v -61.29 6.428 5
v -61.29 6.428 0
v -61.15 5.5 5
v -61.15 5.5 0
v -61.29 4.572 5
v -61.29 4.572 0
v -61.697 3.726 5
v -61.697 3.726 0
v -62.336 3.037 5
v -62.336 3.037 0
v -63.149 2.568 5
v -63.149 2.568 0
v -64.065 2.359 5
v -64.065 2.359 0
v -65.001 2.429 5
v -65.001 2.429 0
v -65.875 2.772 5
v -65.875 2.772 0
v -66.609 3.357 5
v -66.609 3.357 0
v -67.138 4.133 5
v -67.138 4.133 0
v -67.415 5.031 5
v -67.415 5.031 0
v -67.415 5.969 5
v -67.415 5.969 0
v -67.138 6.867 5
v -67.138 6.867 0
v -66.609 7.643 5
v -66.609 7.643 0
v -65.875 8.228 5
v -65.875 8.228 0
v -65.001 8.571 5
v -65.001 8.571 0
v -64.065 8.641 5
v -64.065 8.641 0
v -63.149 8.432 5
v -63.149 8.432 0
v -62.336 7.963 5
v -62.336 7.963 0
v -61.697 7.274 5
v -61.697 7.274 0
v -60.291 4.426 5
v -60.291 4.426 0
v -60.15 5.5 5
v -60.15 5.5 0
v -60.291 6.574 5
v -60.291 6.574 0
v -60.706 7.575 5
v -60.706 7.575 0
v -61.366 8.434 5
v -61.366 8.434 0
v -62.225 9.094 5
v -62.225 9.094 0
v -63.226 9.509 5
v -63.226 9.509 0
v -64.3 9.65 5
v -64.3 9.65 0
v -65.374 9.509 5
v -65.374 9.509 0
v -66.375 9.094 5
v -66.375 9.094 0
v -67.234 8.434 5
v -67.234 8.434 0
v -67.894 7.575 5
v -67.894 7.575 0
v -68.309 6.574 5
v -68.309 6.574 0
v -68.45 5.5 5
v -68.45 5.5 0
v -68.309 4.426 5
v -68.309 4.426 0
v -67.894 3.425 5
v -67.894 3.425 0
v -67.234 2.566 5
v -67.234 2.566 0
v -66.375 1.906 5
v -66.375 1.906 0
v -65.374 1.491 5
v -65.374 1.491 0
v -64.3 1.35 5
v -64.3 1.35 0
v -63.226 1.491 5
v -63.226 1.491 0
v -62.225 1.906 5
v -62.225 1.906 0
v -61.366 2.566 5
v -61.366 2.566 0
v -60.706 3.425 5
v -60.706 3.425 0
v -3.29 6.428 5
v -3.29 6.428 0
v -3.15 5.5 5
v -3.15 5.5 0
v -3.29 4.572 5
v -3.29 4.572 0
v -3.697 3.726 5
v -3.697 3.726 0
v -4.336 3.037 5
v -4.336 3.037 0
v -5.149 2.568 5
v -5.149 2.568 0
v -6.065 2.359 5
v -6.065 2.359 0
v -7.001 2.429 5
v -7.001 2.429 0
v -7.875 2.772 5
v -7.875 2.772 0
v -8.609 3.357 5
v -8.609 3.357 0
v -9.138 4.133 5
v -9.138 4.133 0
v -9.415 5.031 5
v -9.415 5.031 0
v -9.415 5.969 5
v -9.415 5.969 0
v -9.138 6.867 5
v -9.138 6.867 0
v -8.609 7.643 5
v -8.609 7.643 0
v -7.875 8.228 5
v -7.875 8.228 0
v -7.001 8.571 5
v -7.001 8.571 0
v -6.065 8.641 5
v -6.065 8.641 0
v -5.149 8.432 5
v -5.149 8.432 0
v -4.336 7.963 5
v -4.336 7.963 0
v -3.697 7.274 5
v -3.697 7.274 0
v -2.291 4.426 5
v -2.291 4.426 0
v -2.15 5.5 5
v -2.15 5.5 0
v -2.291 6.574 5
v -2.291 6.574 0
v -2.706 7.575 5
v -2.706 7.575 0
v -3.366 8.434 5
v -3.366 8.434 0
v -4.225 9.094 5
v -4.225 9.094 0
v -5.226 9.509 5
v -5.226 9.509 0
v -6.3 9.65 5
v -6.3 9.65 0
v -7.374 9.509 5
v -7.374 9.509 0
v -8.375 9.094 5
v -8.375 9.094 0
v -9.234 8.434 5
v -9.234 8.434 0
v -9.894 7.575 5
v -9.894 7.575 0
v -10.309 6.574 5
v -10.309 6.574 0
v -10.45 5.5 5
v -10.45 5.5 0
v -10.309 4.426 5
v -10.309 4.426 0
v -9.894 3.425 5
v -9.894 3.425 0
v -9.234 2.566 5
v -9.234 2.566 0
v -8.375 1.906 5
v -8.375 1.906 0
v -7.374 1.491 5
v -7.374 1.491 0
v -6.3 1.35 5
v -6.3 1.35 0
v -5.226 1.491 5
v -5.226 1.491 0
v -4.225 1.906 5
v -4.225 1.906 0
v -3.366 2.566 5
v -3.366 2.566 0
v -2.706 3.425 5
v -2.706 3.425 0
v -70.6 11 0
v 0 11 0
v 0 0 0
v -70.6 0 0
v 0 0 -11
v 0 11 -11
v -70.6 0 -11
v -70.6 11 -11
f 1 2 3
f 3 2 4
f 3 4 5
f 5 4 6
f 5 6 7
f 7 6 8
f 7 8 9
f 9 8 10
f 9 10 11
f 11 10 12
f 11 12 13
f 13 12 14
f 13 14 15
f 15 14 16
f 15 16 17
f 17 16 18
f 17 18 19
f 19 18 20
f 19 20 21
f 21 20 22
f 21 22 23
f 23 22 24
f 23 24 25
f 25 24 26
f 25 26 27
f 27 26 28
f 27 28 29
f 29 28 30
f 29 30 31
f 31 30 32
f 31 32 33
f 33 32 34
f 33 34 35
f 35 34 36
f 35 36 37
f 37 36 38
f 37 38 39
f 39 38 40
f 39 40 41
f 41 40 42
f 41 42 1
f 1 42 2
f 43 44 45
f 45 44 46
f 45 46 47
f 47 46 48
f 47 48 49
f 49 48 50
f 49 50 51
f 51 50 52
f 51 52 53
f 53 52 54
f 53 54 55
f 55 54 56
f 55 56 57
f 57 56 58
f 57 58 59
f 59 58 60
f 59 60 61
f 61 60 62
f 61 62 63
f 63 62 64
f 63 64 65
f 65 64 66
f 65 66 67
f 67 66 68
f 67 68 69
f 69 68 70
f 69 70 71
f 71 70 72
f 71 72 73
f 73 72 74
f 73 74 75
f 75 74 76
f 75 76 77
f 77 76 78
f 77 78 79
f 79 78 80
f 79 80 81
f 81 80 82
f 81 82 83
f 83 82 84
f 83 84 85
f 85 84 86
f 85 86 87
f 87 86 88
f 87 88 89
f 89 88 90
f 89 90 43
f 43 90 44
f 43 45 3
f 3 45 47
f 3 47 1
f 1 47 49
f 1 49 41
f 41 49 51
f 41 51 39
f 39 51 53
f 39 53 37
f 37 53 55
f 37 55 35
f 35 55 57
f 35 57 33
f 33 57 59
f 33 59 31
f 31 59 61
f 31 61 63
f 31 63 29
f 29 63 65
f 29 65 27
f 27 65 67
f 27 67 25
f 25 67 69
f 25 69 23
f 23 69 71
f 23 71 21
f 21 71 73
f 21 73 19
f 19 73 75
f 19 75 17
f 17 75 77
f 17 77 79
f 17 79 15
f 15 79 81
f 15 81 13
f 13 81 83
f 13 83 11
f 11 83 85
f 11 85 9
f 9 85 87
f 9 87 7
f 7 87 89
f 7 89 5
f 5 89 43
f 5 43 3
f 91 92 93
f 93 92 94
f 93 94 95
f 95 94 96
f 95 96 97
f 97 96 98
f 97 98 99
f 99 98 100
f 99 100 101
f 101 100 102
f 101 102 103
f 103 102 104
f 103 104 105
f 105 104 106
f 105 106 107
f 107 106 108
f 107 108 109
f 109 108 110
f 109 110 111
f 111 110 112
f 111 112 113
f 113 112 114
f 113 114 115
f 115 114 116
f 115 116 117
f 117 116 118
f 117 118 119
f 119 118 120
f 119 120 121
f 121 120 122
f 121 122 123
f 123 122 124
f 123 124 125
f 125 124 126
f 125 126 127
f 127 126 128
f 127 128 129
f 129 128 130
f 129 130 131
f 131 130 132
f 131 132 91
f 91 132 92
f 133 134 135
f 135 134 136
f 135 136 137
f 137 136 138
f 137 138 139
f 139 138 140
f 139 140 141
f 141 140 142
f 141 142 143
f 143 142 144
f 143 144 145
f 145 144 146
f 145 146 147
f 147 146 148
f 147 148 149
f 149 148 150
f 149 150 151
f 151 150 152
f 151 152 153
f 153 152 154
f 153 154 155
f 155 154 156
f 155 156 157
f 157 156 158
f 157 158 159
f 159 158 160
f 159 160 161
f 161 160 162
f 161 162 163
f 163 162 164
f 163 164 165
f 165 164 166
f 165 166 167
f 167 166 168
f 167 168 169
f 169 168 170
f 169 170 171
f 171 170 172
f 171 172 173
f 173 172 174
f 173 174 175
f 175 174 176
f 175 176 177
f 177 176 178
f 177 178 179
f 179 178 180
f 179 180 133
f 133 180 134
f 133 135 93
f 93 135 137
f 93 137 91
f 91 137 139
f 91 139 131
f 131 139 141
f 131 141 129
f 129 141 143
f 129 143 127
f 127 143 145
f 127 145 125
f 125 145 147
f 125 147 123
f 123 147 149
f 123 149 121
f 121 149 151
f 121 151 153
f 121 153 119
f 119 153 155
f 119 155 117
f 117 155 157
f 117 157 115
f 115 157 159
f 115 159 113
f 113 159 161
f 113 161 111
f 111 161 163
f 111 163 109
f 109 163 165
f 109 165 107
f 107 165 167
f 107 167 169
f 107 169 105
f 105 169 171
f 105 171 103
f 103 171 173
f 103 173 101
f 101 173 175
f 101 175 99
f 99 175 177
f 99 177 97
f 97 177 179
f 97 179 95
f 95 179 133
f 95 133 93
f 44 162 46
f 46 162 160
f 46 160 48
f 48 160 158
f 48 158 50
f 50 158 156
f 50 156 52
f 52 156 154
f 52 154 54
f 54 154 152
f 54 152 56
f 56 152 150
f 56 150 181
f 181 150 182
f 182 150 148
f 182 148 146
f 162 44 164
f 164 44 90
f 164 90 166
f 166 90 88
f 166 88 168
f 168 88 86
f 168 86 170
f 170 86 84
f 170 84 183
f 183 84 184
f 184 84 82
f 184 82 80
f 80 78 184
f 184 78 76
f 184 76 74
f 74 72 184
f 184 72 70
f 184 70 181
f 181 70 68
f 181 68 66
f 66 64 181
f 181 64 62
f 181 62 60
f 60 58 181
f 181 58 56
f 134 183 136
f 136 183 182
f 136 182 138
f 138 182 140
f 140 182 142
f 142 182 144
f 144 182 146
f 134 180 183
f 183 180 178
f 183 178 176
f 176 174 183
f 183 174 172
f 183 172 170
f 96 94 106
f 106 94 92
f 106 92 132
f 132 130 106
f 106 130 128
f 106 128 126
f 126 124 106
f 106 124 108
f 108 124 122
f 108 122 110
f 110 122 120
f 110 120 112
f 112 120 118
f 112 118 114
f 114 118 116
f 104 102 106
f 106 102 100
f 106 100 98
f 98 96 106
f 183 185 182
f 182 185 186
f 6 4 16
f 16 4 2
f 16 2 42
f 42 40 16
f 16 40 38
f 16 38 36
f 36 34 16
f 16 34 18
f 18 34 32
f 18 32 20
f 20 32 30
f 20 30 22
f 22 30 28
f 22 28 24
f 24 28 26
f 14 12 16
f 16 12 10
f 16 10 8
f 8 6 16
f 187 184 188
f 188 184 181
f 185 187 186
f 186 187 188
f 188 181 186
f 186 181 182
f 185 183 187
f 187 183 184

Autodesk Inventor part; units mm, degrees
ref_plane "YZ Plane" through (0, 0, 0) normal (1, 0, 0) x (0, 1, 0)
ref_plane "XZ Plane" through (0, 0, 0) normal (0, 1, 0) x (-1, 0, 0)
ref_plane "XY Plane" through (0, 0, 0) normal (0, 0, 1) x (1, 0, 0)
sketch "Sketch1" plane through (0, 0, 0) normal (0, 1, 0) x (-1, 0, 0)
  line L0 (0, 0) -> (70.6, 0)
  line L1 (70.6, 0) -> (70.6, -11)
  line L2 (70.6, -11) -> (0, -11)
  line L3 (0, -11) -> (0, 0)
  dimension "d0" = 70.6
  dimension "d1" = 11
extrude "Extrusion1" add sketch "Sketch1" along normal blind 11
sketch "Sketch2" plane through (-70.6, 0, 0) normal (0, 0, 1) x (1, 0, 0)
  circle A0 centre (6.3, 5.5) radius 3.15
  circle A1 centre (64.3, 5.5) radius 3.15
  line L0 (6.3, 5.5) -> (64.3, 5.5) construction
  line L1 (0, 11) -> (70.6, 11) construction
  line L2 (0, 0) -> (0, 11) construction
  circle A2 centre (6.3, 5.5) radius 4.15
  circle A3 centre (64.3, 5.5) radius 4.15
  point P0 (70.6, 0)
  dimension "d4" = 5.5
  dimension "d5" = 58
  dimension "d6" = 6.3
  dimension "d7" = 6.3
  dimension "d8" = 1
extrude "Extrusion2" add sketch "Sketch2" along normal blind 5
equation "\"d0\" = carriage_support_length"
equation "\"d1\" = carriage_support_width"
equation "\"d2\" = carriage_support_height"
equation "\"d4\" = 0.5 * carriage_support_height"
equation "\"d5\" = carriage_rod_dist"
equation "\"d6\" = 0.5 * carriage_support_length - 0.5 * carriage_rod_dist"
equation "\"d7\" = carriage_rod_diameter + rod_tolerance"
equation "\"carriage_rod_diameter\" = 6"
equation "\"rod_tolerance\" = 0.3"
equation "\"carriage_support_length\" = 70.6"
equation "\"carriage_support_width\" = 11"
equation "\"carriage_support_height\" = 11"
equation "\"carriage_rod_dist\" = 58"
properties part number "carriage_support"
